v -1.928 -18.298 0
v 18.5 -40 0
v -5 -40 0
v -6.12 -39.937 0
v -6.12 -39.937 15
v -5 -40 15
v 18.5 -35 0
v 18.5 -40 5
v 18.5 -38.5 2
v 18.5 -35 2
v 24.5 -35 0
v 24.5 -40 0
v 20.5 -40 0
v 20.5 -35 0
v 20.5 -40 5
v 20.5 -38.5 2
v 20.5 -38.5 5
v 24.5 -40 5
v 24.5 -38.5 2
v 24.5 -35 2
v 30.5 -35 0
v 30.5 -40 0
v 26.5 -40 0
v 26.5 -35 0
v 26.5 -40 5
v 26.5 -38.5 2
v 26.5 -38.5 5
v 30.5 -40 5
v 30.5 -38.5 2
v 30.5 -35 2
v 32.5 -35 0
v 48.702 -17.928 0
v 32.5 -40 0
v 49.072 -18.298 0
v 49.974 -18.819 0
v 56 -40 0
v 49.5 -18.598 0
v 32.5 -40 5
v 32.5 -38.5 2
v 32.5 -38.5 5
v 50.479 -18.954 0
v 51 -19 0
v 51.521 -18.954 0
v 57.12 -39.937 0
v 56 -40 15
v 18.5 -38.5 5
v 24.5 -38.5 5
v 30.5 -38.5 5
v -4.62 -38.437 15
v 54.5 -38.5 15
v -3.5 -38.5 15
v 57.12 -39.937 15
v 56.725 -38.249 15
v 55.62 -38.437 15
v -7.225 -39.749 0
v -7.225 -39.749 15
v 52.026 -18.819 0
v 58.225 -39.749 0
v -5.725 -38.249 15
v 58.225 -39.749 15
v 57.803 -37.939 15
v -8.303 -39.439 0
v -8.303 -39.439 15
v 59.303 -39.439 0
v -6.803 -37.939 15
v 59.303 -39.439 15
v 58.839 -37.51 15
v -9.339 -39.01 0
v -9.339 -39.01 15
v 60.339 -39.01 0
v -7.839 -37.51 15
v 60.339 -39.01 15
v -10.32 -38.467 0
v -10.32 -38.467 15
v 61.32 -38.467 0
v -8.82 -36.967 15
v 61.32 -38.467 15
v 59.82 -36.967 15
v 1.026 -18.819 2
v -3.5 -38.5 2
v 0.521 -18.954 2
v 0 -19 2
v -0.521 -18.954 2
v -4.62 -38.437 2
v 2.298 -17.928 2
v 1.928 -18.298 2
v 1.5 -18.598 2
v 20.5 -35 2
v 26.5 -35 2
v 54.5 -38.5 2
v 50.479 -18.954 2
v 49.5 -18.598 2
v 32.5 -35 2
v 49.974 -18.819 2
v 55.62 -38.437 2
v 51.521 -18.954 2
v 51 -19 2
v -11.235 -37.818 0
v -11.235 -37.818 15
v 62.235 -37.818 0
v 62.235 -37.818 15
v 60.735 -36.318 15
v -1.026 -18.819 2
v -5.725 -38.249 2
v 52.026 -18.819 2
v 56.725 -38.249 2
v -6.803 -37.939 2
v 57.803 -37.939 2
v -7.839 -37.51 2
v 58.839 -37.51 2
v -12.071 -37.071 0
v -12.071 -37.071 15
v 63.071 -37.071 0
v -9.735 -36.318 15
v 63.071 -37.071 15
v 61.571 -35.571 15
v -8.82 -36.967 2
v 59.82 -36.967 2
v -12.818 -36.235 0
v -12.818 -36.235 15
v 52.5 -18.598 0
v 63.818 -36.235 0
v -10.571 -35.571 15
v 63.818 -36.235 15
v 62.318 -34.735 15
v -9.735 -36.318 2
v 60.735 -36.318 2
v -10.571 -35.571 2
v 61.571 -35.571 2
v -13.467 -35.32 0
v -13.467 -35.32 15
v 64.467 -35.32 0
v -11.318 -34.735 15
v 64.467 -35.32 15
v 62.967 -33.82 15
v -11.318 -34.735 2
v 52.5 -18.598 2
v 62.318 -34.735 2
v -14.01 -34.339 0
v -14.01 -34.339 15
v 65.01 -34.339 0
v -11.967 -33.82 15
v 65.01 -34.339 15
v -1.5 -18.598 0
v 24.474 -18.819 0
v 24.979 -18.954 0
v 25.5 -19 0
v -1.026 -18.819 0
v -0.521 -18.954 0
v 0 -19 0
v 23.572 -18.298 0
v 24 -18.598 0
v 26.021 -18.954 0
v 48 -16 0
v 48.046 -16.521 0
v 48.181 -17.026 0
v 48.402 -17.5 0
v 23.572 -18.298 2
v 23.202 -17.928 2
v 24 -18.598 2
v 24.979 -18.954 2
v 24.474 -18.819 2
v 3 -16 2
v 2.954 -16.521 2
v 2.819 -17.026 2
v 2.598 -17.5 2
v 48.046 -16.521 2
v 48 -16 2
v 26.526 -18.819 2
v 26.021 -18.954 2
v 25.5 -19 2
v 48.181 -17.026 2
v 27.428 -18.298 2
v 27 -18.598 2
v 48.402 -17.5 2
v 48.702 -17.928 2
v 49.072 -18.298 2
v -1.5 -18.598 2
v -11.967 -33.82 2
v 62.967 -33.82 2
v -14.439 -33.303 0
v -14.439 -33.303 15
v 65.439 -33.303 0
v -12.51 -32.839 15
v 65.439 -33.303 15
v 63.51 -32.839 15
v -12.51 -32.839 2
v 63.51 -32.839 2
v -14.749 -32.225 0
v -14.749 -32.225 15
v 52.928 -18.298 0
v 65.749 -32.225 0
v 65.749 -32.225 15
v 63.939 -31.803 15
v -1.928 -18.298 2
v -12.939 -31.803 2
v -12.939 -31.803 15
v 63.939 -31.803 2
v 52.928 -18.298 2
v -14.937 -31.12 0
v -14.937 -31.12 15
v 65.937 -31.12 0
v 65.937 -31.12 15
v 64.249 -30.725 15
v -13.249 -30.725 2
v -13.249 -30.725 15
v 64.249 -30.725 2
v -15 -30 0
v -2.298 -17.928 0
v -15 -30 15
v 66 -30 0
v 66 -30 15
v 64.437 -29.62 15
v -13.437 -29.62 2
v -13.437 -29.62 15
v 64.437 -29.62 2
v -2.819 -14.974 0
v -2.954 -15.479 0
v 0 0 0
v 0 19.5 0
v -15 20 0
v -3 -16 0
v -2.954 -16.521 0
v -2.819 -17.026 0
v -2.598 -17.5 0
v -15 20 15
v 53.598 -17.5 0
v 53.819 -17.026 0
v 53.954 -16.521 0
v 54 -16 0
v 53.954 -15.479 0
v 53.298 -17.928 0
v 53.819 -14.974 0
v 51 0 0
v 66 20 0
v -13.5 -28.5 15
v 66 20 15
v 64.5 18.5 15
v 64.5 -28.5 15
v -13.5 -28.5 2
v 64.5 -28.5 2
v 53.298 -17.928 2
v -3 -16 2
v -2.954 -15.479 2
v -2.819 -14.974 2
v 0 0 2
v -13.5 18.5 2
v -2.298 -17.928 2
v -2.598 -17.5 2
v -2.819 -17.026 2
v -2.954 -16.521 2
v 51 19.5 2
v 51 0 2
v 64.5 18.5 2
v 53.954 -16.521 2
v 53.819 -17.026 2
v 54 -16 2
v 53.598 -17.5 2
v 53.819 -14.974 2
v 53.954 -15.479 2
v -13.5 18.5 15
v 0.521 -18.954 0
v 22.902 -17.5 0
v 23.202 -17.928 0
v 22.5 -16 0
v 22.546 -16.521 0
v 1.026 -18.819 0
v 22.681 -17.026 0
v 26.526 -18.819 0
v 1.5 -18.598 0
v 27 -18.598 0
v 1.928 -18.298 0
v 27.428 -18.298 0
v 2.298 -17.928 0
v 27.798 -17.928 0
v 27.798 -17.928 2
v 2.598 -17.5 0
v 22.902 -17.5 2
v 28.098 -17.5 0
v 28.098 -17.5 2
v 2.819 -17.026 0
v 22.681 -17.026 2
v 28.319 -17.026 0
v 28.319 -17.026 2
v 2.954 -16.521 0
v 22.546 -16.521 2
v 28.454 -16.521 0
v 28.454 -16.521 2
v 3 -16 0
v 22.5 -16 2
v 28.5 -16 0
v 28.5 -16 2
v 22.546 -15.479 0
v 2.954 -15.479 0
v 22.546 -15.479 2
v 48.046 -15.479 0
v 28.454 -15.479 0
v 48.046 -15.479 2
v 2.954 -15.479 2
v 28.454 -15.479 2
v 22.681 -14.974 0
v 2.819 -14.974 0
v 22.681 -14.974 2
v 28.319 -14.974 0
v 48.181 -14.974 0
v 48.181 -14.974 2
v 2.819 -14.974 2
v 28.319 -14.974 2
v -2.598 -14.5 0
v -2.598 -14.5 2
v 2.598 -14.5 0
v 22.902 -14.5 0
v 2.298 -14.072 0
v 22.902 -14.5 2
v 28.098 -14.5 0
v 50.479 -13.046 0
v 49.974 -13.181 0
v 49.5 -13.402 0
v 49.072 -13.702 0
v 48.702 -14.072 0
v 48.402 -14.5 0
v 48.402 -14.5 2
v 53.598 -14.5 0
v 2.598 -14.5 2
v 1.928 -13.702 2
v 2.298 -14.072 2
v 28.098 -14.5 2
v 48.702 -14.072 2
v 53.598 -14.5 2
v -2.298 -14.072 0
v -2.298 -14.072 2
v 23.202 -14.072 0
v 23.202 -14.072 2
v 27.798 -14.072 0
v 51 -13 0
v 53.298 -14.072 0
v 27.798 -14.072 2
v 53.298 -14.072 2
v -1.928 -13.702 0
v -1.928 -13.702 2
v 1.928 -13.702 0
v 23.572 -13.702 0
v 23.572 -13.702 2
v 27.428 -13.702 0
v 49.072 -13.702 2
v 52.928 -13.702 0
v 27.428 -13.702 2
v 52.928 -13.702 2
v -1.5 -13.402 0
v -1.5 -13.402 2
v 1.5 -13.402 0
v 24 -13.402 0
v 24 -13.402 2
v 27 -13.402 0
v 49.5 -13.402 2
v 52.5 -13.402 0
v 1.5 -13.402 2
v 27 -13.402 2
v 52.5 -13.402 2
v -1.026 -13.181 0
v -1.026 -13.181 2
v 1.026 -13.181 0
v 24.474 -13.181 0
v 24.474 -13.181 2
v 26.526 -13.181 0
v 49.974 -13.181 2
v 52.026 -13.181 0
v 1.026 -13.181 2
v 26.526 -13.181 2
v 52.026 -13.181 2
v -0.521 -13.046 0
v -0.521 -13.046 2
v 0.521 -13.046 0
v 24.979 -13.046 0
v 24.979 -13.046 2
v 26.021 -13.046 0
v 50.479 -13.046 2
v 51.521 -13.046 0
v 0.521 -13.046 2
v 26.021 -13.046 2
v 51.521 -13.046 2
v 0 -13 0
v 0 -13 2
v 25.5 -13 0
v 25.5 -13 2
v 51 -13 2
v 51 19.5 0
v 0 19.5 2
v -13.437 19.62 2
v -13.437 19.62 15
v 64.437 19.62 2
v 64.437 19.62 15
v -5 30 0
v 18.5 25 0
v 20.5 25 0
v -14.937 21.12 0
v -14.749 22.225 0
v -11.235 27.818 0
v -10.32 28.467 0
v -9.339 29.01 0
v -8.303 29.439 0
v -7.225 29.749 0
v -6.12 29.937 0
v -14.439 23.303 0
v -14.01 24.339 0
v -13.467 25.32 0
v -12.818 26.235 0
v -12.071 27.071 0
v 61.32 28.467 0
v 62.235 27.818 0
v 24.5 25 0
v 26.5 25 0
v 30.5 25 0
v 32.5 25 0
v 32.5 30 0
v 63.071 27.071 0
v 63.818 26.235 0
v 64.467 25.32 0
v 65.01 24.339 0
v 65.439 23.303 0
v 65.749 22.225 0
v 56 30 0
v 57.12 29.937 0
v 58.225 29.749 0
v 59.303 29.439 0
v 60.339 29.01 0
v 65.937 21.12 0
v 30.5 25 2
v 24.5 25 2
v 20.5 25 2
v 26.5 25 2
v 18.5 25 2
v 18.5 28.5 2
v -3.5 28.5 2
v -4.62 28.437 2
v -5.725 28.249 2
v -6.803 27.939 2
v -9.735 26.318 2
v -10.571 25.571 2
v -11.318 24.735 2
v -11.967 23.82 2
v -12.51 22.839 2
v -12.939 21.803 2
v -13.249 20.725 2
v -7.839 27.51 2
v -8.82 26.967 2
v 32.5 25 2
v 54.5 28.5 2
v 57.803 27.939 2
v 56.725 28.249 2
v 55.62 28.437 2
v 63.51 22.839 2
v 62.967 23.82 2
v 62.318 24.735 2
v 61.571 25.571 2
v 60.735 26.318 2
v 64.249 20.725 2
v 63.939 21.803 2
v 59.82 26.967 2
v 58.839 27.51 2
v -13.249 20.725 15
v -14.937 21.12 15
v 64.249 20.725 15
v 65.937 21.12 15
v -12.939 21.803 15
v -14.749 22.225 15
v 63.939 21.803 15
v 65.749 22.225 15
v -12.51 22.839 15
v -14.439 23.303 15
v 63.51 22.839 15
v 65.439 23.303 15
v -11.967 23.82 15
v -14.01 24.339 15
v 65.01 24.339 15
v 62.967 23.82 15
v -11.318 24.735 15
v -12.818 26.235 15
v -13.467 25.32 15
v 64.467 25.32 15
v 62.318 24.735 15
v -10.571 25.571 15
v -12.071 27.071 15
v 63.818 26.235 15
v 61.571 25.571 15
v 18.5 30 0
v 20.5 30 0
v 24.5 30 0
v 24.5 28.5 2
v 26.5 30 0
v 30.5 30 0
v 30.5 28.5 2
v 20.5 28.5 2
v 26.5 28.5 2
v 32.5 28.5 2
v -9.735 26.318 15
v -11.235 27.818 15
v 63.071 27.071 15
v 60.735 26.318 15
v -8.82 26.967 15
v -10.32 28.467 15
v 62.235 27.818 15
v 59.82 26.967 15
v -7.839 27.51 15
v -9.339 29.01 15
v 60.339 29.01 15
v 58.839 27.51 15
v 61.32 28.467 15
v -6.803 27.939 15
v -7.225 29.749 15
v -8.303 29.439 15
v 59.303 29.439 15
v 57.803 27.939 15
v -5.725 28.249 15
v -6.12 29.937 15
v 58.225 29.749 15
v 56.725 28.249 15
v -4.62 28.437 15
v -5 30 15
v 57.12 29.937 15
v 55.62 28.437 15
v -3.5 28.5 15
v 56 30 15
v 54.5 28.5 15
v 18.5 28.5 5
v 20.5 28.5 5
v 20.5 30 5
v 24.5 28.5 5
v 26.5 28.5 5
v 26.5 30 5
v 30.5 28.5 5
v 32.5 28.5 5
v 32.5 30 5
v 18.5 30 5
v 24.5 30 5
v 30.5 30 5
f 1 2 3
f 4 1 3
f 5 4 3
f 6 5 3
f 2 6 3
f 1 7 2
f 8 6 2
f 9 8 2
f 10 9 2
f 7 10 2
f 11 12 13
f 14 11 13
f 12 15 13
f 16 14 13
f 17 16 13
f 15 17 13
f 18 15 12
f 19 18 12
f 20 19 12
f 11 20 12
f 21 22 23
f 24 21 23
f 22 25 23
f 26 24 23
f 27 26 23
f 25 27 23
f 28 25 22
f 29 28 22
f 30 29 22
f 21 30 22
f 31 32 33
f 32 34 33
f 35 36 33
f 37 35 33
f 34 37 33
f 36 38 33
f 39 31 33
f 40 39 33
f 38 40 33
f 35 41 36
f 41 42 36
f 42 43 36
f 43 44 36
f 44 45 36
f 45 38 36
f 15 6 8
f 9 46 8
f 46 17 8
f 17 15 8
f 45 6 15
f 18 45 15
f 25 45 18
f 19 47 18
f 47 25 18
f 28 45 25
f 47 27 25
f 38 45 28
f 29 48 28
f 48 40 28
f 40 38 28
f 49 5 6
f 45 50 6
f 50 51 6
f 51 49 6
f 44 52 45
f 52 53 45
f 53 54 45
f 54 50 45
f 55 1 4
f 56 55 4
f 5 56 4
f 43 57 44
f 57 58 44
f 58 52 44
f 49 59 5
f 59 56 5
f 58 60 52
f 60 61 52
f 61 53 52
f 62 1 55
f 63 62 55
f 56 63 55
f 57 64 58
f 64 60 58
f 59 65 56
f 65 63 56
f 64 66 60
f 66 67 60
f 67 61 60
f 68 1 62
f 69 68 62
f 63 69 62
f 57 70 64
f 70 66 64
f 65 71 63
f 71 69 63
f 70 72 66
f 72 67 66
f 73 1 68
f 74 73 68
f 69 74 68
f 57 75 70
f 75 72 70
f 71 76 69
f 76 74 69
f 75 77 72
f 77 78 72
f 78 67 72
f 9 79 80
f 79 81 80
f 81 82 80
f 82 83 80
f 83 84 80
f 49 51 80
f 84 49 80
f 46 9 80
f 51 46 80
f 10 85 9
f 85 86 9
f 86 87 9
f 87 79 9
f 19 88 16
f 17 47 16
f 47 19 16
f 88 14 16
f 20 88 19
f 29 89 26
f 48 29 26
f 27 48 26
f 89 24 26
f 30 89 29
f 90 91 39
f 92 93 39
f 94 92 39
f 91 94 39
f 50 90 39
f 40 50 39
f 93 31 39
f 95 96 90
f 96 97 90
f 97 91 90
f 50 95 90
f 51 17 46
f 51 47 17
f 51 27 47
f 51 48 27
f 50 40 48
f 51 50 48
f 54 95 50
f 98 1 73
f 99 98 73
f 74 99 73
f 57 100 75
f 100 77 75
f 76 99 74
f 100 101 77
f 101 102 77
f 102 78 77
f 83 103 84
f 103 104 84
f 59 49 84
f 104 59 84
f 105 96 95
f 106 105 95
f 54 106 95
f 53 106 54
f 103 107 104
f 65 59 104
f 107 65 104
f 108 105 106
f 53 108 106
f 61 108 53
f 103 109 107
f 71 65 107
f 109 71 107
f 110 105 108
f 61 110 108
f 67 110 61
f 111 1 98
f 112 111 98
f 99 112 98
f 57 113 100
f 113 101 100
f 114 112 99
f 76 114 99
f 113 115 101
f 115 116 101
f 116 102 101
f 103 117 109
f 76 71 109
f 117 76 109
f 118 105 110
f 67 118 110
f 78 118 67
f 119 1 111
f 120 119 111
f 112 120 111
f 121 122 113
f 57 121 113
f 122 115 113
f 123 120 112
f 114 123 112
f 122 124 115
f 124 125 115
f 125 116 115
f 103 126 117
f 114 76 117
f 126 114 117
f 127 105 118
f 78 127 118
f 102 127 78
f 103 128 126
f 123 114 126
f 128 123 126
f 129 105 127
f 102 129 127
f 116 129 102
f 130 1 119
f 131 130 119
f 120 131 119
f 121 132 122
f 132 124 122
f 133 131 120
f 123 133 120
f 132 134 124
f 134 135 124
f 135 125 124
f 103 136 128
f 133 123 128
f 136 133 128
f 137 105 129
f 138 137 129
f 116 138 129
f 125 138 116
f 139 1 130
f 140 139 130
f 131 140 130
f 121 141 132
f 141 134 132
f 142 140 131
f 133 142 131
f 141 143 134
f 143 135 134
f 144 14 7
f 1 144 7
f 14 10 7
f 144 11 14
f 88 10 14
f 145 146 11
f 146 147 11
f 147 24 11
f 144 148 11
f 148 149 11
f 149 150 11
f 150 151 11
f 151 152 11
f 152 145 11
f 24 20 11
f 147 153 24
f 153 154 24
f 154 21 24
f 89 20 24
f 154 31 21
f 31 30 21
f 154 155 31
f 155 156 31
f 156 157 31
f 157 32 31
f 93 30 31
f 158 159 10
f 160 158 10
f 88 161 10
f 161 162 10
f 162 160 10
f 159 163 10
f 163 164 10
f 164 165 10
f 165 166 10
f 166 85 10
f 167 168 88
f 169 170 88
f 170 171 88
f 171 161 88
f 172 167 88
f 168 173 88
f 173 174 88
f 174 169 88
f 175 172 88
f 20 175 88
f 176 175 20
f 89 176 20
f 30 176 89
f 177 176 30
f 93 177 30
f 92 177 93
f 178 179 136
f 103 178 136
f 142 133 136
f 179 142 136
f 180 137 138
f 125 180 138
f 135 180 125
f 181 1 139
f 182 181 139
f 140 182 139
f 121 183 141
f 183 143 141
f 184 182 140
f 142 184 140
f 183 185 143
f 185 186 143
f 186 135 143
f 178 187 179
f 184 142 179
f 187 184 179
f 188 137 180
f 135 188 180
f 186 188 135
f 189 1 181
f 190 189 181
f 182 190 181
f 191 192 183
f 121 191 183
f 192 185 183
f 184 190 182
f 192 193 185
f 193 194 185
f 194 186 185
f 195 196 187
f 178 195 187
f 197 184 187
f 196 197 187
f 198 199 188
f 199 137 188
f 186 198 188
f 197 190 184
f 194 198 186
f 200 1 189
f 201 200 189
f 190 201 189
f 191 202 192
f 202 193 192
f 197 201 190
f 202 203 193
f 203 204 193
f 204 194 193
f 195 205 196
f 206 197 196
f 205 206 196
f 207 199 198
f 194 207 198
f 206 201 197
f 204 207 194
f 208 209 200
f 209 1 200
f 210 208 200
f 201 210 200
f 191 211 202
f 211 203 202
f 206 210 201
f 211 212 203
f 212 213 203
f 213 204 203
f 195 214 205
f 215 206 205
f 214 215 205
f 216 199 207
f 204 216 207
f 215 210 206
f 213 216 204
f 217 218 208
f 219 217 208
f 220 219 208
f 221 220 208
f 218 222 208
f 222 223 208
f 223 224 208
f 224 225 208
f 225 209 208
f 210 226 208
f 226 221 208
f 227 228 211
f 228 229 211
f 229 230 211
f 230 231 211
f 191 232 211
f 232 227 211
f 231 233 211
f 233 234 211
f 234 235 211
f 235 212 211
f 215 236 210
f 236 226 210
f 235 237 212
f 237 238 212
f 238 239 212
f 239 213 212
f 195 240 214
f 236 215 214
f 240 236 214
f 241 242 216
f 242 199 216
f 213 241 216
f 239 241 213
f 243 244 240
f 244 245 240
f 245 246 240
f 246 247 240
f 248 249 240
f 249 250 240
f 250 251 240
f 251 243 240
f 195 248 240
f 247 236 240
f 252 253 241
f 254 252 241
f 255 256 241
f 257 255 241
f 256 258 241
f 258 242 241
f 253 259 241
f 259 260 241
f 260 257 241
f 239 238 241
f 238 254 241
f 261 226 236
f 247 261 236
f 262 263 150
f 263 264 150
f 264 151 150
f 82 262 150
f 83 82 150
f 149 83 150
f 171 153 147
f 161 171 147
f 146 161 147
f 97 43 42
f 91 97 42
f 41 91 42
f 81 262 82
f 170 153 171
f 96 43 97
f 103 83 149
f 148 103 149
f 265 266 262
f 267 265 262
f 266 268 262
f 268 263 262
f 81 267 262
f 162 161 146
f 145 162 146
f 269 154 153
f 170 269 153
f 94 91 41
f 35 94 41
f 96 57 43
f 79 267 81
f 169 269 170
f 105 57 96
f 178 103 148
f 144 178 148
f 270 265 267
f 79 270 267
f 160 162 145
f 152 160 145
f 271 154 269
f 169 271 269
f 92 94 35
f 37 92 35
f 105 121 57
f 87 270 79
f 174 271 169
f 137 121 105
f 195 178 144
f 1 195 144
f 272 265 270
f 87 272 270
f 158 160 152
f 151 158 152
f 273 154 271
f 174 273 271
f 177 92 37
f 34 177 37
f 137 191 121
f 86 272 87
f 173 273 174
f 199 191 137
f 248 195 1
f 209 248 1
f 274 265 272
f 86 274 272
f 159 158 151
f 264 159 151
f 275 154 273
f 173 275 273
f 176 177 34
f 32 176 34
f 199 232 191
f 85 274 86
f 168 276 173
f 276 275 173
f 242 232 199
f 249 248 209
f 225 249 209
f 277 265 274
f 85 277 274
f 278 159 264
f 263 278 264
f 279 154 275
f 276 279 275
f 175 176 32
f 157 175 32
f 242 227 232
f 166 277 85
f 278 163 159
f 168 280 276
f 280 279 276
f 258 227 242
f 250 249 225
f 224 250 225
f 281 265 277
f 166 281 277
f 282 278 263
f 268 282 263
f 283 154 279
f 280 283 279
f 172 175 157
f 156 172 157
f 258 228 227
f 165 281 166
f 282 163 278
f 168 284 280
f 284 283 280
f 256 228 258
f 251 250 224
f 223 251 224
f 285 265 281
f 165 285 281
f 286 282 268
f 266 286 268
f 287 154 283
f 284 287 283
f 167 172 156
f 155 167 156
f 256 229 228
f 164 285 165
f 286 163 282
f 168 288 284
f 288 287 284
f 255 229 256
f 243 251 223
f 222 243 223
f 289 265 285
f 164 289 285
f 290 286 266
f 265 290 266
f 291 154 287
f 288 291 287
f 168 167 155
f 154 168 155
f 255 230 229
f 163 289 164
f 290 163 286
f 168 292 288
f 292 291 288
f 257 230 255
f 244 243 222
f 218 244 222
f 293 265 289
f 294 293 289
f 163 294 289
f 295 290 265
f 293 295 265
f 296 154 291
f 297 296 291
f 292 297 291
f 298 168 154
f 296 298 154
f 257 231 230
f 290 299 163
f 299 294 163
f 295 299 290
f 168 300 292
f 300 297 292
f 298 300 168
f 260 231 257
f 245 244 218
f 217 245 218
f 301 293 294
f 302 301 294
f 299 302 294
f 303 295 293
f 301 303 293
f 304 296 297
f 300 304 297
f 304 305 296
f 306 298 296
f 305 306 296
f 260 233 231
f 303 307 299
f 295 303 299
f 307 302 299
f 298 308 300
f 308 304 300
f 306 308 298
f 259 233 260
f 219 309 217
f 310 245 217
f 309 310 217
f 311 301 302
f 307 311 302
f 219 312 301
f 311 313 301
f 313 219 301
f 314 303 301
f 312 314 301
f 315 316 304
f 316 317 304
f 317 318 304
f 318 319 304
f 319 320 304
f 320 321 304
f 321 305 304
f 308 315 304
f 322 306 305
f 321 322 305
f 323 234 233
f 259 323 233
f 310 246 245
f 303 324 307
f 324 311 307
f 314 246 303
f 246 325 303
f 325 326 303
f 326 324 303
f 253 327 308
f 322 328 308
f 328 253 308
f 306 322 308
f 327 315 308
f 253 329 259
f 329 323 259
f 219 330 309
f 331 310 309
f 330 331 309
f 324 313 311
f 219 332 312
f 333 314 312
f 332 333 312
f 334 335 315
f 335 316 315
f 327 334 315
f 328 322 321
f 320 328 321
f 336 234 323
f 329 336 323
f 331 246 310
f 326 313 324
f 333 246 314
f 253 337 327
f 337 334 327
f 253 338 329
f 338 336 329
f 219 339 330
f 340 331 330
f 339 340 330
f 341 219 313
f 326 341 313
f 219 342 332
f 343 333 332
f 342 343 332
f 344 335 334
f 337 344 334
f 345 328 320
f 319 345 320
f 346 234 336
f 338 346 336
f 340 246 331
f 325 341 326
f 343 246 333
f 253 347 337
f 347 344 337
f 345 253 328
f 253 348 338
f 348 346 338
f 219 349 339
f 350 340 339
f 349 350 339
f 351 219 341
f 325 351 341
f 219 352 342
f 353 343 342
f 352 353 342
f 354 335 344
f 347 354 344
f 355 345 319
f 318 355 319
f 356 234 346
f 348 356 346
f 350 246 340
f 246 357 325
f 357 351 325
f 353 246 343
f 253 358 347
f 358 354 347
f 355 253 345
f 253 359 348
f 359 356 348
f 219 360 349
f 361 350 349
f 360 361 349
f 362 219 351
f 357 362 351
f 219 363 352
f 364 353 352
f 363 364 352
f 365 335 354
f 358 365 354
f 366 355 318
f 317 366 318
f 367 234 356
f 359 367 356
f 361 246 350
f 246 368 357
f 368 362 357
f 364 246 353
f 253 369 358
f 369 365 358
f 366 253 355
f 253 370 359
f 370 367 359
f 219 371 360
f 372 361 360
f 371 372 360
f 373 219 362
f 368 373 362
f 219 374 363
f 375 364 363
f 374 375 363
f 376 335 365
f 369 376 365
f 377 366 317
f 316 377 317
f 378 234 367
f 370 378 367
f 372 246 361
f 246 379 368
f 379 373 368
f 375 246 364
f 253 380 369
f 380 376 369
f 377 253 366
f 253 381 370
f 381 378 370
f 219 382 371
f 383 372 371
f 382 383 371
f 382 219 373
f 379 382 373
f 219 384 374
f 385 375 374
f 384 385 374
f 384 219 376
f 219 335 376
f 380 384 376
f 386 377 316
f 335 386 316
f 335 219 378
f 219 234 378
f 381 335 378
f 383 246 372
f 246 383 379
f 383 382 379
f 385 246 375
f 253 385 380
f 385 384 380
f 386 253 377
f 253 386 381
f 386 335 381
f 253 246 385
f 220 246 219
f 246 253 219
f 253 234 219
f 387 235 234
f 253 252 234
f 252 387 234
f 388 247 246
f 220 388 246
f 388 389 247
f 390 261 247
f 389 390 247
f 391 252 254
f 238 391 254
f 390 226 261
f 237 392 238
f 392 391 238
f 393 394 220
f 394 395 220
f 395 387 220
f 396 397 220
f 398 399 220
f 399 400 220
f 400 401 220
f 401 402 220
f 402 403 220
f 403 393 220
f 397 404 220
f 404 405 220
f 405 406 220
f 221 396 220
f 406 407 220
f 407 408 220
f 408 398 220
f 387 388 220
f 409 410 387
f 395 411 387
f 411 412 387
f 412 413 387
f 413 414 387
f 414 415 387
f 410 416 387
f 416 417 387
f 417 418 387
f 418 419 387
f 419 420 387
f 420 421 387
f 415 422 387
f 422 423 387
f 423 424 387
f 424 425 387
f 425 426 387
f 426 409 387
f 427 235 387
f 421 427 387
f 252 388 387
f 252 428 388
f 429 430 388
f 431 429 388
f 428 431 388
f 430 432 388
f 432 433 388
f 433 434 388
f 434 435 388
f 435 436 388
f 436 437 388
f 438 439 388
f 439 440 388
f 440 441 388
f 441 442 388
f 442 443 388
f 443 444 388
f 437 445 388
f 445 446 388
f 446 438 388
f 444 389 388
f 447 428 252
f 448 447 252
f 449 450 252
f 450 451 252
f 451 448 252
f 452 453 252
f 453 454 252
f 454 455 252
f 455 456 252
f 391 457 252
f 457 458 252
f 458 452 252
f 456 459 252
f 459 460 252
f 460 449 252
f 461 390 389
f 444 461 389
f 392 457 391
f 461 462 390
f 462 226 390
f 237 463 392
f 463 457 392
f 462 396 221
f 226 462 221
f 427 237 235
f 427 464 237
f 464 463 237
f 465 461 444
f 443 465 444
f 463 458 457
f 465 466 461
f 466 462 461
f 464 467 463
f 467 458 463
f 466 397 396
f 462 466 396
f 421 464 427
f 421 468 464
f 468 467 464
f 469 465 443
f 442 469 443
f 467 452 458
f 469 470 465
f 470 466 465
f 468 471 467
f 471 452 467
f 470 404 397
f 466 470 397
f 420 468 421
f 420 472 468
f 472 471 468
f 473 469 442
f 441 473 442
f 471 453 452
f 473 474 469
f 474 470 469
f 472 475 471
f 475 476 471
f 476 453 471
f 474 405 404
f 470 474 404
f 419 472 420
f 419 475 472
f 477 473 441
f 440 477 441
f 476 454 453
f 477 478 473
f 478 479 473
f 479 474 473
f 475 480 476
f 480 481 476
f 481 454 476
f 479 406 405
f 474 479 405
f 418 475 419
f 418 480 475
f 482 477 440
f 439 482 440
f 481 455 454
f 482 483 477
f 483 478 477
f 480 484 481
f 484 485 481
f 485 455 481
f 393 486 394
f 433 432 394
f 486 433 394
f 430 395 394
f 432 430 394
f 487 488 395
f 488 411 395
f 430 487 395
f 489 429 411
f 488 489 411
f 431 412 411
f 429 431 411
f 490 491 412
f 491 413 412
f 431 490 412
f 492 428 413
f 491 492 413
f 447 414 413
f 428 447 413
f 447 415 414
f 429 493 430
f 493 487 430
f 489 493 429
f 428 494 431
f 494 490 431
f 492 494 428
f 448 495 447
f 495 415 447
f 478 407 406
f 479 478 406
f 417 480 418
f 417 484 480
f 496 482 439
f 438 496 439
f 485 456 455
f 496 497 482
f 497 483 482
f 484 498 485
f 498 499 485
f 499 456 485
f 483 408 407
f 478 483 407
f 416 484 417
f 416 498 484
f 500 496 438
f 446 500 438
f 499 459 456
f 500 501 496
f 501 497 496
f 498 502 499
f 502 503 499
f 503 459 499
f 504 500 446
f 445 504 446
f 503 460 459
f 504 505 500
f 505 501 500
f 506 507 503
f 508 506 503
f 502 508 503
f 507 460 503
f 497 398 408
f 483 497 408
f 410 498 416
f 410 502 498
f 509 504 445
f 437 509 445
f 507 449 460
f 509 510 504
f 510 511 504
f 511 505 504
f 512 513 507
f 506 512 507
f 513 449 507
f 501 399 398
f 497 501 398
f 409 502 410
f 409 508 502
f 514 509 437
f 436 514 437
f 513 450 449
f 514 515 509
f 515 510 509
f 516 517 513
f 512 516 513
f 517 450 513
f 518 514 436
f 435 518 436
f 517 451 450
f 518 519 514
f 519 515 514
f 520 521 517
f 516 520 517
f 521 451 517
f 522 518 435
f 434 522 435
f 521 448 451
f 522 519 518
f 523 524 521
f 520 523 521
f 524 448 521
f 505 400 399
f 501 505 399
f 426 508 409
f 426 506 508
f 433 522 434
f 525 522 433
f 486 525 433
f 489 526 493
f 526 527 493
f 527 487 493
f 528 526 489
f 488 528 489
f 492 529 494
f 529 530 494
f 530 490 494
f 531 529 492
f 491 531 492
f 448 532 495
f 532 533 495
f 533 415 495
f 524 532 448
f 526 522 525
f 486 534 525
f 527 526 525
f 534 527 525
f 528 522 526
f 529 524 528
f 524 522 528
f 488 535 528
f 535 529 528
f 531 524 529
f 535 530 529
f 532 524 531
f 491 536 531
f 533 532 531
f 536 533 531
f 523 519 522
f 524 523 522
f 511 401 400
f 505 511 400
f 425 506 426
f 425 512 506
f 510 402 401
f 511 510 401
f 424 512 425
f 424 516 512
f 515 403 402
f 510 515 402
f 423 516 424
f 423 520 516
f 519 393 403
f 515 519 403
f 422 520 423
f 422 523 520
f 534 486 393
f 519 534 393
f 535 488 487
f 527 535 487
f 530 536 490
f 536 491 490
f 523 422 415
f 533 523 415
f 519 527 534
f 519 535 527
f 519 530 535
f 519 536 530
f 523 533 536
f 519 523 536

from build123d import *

# Parameters (mm, degrees)
ESQUISSE1_R             = 3
ESQUISSE1_W             = 51
ESQUISSE1_H             = 19.5
BOSS_EXTRU_1_DEPTH      = 2
BOSS_EXTRU_2_DEPTH      = 13
ESQUISSE3_W             = 2
ESQUISSE3_H             = 8.661779492
ESQUISSE3_H_2           = 8.71590367
ESQUISSE3_H_3           = 8.44528278
ESQUISSE3_H_4           = 8.493191711
ENL_V_MAT_EXTRU_1_DEPTH = 5


with BuildPart() as part:
    # Esquisse1 → Boss.-Extru.1 (new body)
    with BuildSketch(Plane.XY):
        with BuildLine():
            Line((-5, 30), (56, 30))
            ThreePointArc((56, 30), (63.071067812, 27.071067812), (66, 20))
            Line((66, 20), (66, -30))
            ThreePointArc((66, -30), (63.071067812, -37.071067812), (56, -40))
            Line((56, -40), (-5, -40))
            ThreePointArc((-5, -40), (-12.071067812, -37.071067812), (-15, -30))
            Line((-15, -30), (-15, 20))
            ThreePointArc((-15, 20), (-12.071067812, 27.071067812), (-5, 30))
        make_face()
        with Locations((0, -16)):
            Circle(ESQUISSE1_R, mode=Mode.SUBTRACT)
        with Locations((25.5, -16)):
            Circle(ESQUISSE1_R, mode=Mode.SUBTRACT)
        with Locations((51, -16)):
            Circle(ESQUISSE1_R, mode=Mode.SUBTRACT)
        with Locations((25.5, 9.75)):
            Rectangle(ESQUISSE1_W, ESQUISSE1_H, mode=Mode.SUBTRACT)
    extrude(amount=BOSS_EXTRU_1_DEPTH)

    # Esquisse2 → Boss.-Extru.2 (add)
    with BuildSketch(Plane.XY.offset(2)):
        with BuildLine():
            Line((-5, 30), (56, 30))
            ThreePointArc((56, 30), (63.071067812, 27.071067812), (66, 20))
            Line((66, 20), (66, -30))
            ThreePointArc((66, -30), (63.071067812, -37.071067812), (56, -40))
            Line((56, -40), (-5, -40))
            ThreePointArc((-5, -40), (-12.071067812, -37.071067812), (-15, -30))
            Line((-15, -30), (-15, 20))
            ThreePointArc((-15, 20), (-12.071067812, 27.071067812), (-5, 30))
        make_face()
        with BuildLine():
            Line((-13.5, 18.5), (-13.5, -28.5))
            ThreePointArc((-13.5, -28.5), (-10.571067812, -35.571067812), (-3.5, -38.5))
            Line((-3.5, -38.5), (54.5, -38.5))
            ThreePointArc((54.5, -38.5), (61.571067812, -35.571067812), (64.5, -28.5))
            Line((64.5, -28.5), (64.5, 18.5))
            ThreePointArc((64.5, 18.5), (61.571067812, 25.571067812), (54.5, 28.5))
            Line((54.5, 28.5), (-3.5, 28.5))
            ThreePointArc((-3.5, 28.5), (-10.571067812, 25.571067812), (-13.5, 18.5))
        make_face(mode=Mode.SUBTRACT)
    extrude(amount=BOSS_EXTRU_2_DEPTH)

    # Esquisse3 → Enlèv. mat.-Extru.1 (cut)
    with BuildSketch(Plane(origin=(0, 0, 0), x_dir=(-1, 0, 0), z_dir=(0, 0, -1))):
        with Locations((-25.5, 29.330889746)):
            Rectangle(ESQUISSE3_W, ESQUISSE3_H)
        with Locations((-31.5, 29.357951835)):
            Rectangle(ESQUISSE3_W, ESQUISSE3_H_2)
        with Locations((-19.5, 29.22264139)):
            Rectangle(ESQUISSE3_W, ESQUISSE3_H_3)
        with Locations((-25.5, -39.246595856)):
            Rectangle(ESQUISSE3_W, ESQUISSE3_H_4)
        with Locations((-31.5, -39.246595856)):
            Rectangle(ESQUISSE3_W, ESQUISSE3_H_4)
        with Locations((-19.5, -39.246595856)):
            Rectangle(ESQUISSE3_W, ESQUISSE3_H_4)
    extrude(amount=-ENL_V_MAT_EXTRU_1_DEPTH, mode=Mode.SUBTRACT)


solid = part.part
